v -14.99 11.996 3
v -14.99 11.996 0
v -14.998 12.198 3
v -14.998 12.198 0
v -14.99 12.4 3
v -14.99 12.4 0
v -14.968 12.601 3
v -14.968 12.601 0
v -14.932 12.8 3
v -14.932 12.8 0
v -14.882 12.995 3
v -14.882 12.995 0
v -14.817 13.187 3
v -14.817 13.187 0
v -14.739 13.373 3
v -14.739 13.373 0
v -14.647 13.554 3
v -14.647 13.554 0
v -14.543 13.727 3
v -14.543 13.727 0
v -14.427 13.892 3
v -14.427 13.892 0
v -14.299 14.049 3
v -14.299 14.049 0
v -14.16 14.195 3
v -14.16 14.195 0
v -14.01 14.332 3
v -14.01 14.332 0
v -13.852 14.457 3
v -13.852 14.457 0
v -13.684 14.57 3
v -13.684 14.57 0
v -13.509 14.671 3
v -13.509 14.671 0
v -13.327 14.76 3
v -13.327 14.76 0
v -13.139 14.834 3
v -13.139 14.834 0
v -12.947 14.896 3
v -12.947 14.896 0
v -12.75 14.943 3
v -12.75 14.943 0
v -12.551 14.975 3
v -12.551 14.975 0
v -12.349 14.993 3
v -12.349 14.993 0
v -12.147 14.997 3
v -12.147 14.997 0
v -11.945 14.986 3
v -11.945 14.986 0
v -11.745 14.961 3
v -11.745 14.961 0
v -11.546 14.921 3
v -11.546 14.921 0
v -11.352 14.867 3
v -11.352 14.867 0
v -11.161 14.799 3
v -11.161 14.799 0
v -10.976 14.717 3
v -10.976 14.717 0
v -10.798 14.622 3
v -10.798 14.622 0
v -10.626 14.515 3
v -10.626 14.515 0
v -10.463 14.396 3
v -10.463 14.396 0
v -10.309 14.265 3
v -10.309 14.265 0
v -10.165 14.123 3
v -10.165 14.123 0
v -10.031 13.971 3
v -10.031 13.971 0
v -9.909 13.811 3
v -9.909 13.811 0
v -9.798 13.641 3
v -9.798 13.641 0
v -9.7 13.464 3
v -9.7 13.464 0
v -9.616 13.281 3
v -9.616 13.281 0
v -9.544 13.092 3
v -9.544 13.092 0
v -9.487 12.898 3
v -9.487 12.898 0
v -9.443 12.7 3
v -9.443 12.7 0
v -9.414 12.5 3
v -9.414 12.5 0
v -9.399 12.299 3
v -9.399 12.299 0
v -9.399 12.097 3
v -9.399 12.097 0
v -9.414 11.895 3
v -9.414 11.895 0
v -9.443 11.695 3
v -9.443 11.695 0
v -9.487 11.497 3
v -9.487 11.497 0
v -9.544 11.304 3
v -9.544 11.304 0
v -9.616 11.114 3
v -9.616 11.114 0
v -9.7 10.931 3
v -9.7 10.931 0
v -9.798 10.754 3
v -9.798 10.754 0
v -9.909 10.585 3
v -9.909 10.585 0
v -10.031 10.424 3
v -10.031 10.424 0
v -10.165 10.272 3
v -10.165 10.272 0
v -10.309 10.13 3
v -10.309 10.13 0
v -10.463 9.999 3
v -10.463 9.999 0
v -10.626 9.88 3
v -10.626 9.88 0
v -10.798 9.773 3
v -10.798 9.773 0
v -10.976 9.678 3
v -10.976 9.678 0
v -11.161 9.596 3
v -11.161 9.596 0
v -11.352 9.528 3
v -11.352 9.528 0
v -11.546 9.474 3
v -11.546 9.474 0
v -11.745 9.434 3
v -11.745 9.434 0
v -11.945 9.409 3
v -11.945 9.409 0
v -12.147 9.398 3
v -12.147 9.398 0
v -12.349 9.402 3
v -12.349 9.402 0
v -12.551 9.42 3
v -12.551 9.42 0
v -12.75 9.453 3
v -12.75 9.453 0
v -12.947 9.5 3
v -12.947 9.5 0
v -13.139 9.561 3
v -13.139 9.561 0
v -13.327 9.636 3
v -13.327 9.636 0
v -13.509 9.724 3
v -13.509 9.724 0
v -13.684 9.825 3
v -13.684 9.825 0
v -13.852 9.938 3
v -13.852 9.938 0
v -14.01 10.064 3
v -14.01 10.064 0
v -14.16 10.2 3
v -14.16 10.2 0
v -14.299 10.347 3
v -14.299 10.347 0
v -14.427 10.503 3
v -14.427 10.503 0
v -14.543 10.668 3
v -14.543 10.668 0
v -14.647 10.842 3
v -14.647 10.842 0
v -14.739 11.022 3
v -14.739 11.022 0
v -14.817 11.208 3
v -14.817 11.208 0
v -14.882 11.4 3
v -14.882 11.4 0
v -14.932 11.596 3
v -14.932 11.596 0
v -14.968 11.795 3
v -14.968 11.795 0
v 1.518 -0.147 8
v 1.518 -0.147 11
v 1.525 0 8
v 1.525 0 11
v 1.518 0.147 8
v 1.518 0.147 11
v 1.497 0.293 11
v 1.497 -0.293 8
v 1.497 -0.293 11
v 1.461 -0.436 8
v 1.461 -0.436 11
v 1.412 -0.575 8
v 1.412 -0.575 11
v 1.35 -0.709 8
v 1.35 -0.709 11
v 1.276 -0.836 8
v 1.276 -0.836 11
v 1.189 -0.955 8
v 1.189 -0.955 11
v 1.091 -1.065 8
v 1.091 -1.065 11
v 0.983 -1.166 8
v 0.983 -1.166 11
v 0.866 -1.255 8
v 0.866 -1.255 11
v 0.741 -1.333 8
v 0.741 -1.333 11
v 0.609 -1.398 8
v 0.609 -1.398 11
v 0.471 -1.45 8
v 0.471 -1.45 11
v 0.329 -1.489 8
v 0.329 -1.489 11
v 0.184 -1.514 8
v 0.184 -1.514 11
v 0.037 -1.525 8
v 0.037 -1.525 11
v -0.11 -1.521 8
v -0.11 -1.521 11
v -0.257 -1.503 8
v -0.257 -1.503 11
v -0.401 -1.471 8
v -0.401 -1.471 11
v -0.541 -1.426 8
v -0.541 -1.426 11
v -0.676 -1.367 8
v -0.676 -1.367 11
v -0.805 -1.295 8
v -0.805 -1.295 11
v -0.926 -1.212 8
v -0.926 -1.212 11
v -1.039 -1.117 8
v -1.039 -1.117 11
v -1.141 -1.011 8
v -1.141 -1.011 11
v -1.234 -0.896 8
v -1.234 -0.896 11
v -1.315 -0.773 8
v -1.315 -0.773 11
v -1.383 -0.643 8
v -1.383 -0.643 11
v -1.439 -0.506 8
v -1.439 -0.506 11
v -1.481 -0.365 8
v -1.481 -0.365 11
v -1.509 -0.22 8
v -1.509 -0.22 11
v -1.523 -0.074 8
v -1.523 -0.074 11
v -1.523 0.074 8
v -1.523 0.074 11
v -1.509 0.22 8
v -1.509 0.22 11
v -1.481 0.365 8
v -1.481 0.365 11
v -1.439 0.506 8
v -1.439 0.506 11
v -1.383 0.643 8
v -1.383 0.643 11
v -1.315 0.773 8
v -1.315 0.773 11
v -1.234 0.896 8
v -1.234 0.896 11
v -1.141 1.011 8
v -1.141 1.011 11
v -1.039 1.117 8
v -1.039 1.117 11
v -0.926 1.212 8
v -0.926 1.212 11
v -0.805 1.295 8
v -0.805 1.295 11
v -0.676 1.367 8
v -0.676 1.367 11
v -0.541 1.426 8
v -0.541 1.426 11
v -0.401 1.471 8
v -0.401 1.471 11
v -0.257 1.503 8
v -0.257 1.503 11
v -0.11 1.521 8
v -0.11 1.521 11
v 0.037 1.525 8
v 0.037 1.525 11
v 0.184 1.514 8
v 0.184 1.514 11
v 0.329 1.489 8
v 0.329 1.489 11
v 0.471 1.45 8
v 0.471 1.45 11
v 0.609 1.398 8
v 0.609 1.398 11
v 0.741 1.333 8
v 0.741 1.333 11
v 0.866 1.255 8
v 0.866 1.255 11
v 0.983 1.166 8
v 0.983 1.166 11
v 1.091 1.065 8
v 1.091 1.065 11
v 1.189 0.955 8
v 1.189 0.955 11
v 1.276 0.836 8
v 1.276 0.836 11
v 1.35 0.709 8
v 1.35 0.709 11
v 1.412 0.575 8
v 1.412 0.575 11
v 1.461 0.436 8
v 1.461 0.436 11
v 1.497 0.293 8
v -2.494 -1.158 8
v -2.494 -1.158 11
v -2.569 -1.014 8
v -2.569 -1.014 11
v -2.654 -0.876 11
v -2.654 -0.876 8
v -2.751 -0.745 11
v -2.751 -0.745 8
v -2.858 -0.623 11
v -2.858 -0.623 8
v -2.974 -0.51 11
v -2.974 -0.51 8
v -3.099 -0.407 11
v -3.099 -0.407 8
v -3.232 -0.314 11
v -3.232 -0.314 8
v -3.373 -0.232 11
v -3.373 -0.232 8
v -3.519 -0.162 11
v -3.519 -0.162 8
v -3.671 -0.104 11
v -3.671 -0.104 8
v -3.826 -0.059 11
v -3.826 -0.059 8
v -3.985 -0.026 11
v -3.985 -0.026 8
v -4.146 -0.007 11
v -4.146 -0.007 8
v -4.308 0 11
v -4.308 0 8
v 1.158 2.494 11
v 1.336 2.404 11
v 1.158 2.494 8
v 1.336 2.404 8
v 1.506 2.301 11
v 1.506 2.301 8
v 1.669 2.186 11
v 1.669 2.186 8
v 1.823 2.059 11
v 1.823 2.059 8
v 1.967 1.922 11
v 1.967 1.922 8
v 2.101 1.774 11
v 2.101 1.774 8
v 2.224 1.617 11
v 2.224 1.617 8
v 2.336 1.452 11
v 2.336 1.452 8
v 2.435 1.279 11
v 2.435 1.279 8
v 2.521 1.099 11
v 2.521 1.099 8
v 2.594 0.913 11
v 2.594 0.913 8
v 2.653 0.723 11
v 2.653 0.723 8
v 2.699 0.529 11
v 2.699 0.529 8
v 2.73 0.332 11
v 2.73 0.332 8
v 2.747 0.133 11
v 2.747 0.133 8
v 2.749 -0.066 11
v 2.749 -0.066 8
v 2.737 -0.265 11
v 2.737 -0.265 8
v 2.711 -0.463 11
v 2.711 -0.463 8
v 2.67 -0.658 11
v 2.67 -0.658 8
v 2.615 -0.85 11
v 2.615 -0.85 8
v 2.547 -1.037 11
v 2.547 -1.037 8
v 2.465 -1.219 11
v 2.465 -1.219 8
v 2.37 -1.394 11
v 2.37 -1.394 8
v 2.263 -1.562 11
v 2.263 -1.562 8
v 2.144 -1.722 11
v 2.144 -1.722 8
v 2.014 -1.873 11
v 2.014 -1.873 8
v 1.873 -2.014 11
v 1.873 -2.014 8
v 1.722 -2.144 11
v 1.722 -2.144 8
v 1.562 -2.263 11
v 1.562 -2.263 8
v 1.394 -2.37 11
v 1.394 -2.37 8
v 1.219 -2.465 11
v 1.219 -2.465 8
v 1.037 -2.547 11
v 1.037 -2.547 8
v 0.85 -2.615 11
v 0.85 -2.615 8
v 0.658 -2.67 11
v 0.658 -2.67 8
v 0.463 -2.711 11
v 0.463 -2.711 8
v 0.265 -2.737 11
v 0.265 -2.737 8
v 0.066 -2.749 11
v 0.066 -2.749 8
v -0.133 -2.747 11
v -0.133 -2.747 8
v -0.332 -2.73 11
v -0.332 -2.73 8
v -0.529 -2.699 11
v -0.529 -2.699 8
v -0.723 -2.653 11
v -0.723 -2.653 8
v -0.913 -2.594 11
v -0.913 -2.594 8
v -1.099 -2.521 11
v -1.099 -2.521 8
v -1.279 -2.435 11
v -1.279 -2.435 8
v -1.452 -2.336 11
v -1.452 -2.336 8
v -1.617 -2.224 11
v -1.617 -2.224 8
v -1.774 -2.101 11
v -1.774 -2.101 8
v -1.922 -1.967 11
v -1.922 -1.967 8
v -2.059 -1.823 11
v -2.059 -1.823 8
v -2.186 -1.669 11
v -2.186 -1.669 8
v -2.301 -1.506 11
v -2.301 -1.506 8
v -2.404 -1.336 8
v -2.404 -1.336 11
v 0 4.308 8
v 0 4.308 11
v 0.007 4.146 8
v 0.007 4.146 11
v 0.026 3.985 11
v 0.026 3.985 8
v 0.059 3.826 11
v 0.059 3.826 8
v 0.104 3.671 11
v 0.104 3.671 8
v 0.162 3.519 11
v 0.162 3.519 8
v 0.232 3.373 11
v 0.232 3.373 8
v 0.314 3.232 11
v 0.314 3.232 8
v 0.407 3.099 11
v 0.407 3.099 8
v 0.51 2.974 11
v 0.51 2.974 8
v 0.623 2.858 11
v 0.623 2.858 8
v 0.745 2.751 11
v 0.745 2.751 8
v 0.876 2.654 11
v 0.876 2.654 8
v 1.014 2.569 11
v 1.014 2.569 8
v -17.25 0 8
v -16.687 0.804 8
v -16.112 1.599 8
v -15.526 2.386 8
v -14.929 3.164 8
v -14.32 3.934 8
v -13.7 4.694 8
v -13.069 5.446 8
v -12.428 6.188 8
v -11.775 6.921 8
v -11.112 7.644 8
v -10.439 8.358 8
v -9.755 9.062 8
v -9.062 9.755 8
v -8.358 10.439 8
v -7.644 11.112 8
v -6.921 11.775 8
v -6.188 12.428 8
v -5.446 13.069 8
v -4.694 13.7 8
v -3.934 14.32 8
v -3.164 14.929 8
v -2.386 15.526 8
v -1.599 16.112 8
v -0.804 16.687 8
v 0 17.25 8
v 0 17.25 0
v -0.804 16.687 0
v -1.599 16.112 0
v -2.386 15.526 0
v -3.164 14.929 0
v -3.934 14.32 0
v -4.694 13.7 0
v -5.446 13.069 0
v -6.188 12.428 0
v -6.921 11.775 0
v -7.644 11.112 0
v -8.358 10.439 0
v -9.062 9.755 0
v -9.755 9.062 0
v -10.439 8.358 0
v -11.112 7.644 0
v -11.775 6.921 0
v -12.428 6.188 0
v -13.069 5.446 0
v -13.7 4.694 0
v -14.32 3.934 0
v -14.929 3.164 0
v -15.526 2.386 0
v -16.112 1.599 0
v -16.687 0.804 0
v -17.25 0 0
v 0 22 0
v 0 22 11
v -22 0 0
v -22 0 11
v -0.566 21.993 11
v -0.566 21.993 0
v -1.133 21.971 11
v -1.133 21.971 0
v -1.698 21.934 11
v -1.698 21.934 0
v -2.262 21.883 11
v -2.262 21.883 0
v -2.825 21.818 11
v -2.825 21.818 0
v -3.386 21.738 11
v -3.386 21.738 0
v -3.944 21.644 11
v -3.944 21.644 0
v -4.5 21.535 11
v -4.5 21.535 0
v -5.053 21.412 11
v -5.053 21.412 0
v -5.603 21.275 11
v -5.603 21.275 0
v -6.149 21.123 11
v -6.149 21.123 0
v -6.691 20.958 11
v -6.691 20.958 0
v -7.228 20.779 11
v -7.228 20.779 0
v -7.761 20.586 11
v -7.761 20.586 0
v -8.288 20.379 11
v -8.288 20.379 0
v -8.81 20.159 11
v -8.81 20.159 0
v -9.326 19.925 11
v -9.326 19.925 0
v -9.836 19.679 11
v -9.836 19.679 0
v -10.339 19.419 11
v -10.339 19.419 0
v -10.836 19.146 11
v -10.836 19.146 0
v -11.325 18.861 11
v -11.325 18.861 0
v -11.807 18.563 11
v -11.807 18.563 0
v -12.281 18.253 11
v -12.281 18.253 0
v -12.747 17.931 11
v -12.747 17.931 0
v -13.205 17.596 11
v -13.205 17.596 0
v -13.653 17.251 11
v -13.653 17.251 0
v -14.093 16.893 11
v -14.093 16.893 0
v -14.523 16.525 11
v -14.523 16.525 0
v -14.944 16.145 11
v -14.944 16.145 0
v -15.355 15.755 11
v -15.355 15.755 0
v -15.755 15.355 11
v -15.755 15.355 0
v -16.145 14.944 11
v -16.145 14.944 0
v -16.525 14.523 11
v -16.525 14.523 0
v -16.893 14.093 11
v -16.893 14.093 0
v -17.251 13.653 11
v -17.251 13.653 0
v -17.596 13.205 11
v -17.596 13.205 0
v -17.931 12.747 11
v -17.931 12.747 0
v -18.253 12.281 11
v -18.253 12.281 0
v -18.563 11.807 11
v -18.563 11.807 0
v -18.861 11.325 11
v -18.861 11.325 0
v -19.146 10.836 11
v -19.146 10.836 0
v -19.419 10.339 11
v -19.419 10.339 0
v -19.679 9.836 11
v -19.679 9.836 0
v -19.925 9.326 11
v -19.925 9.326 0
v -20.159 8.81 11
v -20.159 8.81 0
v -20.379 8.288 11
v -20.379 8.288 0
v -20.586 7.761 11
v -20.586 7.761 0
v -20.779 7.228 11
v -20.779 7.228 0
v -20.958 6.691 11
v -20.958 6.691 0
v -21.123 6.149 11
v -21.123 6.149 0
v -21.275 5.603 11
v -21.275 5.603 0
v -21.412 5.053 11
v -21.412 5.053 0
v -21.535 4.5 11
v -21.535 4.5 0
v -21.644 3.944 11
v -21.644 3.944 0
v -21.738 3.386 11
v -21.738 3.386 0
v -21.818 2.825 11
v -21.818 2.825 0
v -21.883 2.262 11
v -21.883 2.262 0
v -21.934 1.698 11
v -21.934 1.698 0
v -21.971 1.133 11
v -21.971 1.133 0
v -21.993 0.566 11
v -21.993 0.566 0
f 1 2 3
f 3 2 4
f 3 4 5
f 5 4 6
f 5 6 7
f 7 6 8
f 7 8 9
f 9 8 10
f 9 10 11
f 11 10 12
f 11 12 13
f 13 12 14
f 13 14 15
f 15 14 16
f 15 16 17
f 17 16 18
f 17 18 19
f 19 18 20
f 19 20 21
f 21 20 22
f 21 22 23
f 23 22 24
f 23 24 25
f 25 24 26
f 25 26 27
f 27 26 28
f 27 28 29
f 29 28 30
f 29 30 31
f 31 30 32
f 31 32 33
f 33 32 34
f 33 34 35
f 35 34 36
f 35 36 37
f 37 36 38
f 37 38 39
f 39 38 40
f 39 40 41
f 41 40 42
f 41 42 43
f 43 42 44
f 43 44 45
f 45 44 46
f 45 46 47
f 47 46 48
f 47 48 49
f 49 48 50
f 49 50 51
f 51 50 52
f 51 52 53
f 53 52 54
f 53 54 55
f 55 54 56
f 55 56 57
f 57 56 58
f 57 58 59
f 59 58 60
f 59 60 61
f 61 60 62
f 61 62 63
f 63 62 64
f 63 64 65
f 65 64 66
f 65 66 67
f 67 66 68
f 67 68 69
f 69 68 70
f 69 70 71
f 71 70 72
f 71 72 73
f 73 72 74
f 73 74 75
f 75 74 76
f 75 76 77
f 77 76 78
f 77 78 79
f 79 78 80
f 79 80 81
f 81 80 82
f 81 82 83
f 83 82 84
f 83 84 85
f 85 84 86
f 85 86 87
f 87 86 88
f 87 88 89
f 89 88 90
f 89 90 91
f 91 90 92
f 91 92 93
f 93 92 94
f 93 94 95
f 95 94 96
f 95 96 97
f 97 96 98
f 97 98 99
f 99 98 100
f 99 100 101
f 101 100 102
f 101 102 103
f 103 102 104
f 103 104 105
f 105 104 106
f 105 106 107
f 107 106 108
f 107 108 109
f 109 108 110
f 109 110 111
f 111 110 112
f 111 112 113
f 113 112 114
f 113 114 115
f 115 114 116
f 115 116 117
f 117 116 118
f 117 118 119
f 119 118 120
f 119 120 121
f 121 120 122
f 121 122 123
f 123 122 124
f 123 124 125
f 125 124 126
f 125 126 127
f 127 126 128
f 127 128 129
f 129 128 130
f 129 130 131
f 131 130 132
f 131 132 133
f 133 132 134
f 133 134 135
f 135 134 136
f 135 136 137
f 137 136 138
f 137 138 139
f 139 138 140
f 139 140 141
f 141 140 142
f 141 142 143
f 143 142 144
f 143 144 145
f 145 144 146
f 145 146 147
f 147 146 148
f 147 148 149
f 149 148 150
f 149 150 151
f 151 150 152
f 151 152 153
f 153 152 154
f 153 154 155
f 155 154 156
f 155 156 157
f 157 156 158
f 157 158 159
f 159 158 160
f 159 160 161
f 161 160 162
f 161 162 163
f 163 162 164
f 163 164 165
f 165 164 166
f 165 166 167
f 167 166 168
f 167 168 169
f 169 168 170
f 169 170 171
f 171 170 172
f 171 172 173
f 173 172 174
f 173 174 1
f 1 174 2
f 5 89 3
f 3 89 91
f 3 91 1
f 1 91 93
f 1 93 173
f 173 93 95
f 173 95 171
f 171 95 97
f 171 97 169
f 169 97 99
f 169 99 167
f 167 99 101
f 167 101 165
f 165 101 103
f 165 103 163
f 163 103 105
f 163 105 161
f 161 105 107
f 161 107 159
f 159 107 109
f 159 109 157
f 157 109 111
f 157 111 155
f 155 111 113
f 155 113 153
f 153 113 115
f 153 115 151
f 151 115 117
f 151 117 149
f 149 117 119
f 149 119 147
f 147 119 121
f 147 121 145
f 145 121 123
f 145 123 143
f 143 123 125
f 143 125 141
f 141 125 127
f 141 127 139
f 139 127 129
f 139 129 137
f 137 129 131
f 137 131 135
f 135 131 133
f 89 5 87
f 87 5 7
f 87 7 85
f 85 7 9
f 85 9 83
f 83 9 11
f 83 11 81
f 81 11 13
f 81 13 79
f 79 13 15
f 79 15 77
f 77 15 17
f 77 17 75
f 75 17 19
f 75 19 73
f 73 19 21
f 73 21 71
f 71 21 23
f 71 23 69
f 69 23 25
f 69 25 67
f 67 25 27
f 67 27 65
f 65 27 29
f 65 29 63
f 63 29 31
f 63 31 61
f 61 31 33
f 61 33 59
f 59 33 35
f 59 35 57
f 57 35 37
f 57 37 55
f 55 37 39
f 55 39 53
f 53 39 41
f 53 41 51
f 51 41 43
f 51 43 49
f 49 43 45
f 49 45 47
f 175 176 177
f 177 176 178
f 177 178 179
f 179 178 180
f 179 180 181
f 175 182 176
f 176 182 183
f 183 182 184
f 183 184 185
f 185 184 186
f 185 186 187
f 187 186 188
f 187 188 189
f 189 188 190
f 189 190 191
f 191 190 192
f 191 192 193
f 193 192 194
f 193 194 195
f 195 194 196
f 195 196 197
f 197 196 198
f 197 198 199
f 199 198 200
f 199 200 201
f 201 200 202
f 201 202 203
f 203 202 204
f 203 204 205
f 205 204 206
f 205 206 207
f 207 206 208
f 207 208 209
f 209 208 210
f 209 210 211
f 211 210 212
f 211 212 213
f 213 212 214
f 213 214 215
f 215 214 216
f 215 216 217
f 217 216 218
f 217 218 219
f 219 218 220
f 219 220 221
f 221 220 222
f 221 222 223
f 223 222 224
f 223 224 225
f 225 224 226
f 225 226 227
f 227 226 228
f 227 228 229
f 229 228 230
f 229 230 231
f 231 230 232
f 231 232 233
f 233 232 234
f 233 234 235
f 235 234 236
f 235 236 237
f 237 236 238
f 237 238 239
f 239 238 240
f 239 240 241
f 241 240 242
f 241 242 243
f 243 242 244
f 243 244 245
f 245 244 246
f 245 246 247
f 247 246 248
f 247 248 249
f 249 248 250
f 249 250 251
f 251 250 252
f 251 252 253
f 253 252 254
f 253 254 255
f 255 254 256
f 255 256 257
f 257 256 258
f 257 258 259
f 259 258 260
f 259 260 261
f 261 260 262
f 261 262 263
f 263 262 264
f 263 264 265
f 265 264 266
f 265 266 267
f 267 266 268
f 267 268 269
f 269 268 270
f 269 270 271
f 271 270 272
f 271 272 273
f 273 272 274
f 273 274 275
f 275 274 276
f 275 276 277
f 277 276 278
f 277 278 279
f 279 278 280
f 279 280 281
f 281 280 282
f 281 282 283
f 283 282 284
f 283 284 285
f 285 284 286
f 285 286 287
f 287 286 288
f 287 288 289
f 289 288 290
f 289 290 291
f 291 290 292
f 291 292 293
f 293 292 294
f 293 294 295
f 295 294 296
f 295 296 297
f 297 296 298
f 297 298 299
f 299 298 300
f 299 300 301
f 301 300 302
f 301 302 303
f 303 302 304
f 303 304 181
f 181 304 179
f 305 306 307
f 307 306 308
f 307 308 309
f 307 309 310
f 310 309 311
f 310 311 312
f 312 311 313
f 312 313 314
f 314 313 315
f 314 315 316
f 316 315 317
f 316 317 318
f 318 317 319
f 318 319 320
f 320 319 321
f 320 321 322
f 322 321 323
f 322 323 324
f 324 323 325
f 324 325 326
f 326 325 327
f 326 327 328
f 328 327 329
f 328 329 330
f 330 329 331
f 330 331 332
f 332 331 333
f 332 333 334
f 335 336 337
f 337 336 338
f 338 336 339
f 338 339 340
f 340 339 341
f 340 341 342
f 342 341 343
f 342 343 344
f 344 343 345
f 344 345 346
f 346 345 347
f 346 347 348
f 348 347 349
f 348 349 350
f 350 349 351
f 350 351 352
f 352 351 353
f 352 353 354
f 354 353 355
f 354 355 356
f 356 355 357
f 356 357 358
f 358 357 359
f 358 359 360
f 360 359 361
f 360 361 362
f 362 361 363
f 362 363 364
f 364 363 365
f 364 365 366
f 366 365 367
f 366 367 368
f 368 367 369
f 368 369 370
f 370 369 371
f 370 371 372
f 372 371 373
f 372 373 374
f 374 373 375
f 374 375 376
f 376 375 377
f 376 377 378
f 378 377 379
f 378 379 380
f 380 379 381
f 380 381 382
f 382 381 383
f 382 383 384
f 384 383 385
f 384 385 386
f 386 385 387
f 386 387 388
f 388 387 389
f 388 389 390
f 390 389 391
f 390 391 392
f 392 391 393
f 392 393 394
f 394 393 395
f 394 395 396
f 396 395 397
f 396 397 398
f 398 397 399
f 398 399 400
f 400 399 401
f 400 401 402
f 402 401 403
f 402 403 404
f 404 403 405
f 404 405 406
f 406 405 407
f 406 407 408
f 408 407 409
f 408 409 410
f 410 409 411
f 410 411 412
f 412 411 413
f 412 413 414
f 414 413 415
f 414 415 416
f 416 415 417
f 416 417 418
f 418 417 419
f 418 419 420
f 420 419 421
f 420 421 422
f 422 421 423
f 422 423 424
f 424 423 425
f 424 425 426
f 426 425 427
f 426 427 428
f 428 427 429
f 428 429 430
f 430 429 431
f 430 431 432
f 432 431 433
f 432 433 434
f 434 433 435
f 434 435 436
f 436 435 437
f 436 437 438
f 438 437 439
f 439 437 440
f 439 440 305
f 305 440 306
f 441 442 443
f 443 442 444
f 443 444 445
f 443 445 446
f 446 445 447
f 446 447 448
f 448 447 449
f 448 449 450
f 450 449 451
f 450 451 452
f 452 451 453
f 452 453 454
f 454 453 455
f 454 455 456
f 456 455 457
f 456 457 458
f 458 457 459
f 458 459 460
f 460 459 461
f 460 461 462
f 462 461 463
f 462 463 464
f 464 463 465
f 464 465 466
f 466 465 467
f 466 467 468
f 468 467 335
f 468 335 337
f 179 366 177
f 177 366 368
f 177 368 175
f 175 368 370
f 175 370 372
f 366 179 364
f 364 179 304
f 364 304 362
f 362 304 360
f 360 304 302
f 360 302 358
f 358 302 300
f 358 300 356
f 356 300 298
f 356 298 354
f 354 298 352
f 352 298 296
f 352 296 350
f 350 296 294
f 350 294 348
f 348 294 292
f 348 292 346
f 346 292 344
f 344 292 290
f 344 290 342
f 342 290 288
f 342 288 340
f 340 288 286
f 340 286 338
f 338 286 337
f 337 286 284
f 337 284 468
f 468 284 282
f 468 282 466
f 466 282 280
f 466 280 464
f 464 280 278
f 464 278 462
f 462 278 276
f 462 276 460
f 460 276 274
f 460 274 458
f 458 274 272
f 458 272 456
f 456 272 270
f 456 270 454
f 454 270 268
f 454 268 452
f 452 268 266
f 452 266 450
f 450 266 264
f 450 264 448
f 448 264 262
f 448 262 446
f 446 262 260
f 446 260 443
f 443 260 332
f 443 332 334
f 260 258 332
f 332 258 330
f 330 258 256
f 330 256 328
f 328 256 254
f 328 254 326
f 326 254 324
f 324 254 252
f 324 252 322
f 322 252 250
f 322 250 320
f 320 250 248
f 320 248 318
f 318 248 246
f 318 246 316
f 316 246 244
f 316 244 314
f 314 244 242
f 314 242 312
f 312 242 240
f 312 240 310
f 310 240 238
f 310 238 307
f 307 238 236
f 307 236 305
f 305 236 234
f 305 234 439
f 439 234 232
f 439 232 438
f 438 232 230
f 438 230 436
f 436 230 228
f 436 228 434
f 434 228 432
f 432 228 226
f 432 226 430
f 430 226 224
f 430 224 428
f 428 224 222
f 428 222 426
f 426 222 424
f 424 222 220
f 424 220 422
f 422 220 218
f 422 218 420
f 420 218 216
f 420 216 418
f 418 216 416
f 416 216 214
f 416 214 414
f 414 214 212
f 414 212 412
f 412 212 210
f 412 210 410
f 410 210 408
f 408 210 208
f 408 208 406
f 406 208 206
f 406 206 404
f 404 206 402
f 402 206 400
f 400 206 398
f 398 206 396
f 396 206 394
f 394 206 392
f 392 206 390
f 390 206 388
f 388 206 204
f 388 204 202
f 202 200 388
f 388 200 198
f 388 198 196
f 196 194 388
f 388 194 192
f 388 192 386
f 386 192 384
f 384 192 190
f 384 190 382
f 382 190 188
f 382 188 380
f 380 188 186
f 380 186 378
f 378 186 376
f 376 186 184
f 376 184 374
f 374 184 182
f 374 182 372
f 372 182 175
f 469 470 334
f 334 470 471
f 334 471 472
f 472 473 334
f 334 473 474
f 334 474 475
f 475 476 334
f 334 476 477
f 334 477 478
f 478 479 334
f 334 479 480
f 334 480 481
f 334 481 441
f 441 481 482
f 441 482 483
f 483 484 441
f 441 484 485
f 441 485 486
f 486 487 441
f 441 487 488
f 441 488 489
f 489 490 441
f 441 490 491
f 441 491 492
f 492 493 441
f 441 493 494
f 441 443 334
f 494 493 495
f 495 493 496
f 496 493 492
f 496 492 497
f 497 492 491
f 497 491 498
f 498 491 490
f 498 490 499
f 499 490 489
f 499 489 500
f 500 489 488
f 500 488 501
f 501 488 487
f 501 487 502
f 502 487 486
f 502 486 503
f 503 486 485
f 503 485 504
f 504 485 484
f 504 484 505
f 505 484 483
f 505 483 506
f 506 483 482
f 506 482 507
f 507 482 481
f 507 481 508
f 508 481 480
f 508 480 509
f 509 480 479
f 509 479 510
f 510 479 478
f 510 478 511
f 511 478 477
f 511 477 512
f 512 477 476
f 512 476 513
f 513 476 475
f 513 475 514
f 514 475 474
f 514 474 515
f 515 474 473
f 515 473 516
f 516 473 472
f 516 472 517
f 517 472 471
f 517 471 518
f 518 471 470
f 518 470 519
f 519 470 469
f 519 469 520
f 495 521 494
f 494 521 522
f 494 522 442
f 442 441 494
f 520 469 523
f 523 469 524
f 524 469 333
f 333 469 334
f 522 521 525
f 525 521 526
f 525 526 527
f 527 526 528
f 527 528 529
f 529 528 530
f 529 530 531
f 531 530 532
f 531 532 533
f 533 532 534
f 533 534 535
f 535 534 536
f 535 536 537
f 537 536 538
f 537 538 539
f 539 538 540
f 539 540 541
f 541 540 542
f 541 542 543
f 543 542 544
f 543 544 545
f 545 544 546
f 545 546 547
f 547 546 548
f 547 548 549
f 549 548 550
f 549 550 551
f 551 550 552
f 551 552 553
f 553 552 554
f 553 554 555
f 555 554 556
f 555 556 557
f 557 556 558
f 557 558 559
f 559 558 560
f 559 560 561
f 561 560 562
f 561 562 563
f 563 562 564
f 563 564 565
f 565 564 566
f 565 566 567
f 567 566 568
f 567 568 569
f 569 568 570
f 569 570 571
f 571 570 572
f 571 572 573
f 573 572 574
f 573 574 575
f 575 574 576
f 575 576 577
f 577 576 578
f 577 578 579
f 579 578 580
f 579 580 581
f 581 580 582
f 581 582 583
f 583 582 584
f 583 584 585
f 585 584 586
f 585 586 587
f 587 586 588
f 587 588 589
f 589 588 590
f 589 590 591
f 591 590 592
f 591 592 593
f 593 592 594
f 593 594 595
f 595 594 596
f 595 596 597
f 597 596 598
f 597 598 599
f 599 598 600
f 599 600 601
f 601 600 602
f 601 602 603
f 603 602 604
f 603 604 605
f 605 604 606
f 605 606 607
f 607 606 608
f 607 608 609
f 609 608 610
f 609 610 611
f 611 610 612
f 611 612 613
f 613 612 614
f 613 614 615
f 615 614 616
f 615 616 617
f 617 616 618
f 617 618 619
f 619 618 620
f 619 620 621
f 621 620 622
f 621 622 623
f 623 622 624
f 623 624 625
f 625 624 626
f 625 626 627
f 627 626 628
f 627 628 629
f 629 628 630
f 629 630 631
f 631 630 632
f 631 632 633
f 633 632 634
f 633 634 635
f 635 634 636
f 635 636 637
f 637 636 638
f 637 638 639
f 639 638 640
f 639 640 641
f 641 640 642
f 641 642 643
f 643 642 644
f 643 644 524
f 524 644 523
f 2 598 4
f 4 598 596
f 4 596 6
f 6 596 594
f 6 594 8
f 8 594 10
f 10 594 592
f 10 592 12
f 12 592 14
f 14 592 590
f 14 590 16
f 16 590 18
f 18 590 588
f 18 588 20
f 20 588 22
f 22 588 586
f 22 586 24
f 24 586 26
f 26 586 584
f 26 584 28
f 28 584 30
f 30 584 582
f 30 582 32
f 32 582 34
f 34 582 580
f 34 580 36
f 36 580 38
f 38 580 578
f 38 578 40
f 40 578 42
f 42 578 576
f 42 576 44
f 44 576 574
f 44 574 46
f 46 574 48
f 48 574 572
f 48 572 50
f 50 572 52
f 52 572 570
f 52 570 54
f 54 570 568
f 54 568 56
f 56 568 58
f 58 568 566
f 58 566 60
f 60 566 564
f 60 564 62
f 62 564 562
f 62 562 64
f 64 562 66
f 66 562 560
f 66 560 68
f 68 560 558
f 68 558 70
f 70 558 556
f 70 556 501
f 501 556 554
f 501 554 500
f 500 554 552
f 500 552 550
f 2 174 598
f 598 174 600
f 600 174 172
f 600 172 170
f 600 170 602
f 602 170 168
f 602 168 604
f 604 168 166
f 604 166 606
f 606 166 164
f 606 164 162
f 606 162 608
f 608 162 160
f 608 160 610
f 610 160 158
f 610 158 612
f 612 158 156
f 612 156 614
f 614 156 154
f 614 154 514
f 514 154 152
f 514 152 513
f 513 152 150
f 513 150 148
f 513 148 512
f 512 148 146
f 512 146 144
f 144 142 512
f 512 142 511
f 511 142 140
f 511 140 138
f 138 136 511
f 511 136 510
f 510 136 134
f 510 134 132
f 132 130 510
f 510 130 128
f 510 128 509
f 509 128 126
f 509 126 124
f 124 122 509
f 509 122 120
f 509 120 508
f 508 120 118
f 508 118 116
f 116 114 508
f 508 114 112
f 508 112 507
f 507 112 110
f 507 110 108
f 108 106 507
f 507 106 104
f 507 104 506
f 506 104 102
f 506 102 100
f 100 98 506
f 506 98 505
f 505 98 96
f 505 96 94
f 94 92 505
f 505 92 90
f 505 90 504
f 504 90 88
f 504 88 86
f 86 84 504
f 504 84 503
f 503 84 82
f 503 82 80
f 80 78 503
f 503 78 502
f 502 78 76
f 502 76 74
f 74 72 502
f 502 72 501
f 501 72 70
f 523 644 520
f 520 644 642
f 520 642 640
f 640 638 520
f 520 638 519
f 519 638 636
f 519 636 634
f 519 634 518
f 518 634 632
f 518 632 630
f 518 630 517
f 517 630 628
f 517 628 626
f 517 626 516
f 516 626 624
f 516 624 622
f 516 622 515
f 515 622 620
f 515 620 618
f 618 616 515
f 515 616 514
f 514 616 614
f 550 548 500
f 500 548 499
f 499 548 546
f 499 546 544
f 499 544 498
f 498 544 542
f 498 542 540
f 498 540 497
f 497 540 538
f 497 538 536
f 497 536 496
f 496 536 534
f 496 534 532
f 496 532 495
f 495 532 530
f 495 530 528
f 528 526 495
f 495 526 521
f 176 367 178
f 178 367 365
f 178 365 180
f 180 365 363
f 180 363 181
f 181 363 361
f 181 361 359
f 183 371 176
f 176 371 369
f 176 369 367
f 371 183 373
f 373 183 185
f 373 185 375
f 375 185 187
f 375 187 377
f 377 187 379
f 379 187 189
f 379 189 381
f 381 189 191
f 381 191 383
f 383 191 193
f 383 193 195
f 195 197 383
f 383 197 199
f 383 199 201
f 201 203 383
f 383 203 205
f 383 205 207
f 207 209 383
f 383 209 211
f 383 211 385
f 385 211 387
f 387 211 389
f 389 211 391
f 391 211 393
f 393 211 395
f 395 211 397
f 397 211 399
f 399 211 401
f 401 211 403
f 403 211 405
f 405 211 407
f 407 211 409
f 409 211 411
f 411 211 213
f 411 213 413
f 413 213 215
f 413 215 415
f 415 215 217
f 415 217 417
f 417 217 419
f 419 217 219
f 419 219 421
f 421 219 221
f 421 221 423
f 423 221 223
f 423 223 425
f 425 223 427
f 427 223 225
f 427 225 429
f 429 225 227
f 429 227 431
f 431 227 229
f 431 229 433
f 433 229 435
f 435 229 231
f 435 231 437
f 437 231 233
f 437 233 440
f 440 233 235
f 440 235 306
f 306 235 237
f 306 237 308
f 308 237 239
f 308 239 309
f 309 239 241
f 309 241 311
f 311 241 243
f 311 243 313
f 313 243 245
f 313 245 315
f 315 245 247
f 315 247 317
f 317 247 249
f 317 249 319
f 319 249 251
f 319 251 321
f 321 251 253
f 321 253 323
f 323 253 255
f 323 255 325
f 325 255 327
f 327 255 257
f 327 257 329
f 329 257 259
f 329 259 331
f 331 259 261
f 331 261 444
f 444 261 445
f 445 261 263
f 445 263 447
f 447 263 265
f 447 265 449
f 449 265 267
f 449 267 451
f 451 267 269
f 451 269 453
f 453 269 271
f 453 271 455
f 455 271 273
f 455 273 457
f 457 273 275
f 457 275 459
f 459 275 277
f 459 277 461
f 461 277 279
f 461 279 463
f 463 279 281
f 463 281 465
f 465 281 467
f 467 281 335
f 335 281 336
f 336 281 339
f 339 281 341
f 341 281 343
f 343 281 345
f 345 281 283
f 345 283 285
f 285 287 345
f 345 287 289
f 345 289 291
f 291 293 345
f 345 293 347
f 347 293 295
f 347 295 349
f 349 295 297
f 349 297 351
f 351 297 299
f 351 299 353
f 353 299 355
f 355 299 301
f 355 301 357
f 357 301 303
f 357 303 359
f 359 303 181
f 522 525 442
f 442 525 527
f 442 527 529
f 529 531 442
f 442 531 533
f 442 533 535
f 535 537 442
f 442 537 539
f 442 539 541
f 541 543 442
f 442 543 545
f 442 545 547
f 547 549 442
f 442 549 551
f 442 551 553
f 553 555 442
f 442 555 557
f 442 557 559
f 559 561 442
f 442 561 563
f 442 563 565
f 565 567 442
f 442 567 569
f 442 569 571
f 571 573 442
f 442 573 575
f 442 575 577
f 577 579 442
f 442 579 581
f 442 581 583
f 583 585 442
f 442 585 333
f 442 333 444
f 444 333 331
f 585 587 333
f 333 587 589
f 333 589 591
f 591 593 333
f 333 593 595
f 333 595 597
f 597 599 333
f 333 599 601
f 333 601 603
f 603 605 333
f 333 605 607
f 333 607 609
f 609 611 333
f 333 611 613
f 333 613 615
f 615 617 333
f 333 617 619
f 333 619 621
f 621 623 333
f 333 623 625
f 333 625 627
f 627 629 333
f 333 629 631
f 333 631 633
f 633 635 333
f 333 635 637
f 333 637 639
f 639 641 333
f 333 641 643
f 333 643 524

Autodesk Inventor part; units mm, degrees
ref_plane "YZ Plane" through (0, 0, 0) normal (1, 0, 0) x (0, 1, 0)
ref_plane "XZ Plane" through (0, 0, 0) normal (0, 1, 0) x (-1, 0, 0)
sketch "Sketch1" plane through (0, 0, 0) normal (0, 0, 1) x (1, 0, 0)
  arc A0 (0, 22) -> (-22, 0) centre (0, 0) ccw
  arc A1 (0, 17.25) -> (-17.25, 0) centre (38.3744, -38.3744) ccw
  line L0 (0, 17.25) -> (0, 22)
  line L1 (-17.25, 0) -> (-22, 0)
  dimension "d0" = 44
ref_plane "Work Plane1" through (0, 0, 16) normal (0, 0, 1) x (1, 0, 0)
extrude "Extrusion3" add sketch "Sketch1" along normal blind 11
sketch "Sketch5" plane through (0, 0, 11) normal (0, 0, 1) x (1, 0, 0)
  arc A0 (0, 17.25) -> (-17.25, 0) centre (38.3744, -38.3744) ccw projected
  line L0 (-4.3084, 0) -> (-17.25, 0)
  line L1 (-2.75, 0) -> (-17.25, 0)
  circle A1 centre (0, 0) radius 1.525
  arc A2 (-2.4943, -1.1579) -> (1.1579, 2.4943) centre (0, 0) ccw
  line L2 (0, 17.25) -> (0, 4.3084)
  line L3 (-17.25, 0) -> (-2.75, 0)
  arc A3 (0, 4.3084) -> (1.1579, 2.4943) centre (2, 4.3084) ccw
  arc A4 (-2.4943, -1.1579) -> (-4.3084, 0) centre (-4.3084, -2) ccw
  point P0 (0, 2.75)
  dimension "d25" = 3.05
  dimension "d26" = 5.5
  dimension "d27" = 2
extrude "Extrusion4" add sketch "Sketch5" against normal blind 3
sketch "Sketch6" plane through (0, 0, 0) normal (0, 0, -1) x (-1, 0, 0)
  line L0 (0, 0) -> (15.5563, 15.5563)
  arc A0 (22, 0) -> (0, 22) centre (0, 0) ccw projected
  line L1 (0, 0) -> (22, 0) construction
  circle A1 centre (12.1976, 12.1976) radius 2.8
  dimension "d30" = 45
  dimension "d31" = 5.6
  dimension "d32" = 17.25
extrude "Extrusion5" cut sketch "Sketch6" against normal blind 3
properties part number "led-holder"
